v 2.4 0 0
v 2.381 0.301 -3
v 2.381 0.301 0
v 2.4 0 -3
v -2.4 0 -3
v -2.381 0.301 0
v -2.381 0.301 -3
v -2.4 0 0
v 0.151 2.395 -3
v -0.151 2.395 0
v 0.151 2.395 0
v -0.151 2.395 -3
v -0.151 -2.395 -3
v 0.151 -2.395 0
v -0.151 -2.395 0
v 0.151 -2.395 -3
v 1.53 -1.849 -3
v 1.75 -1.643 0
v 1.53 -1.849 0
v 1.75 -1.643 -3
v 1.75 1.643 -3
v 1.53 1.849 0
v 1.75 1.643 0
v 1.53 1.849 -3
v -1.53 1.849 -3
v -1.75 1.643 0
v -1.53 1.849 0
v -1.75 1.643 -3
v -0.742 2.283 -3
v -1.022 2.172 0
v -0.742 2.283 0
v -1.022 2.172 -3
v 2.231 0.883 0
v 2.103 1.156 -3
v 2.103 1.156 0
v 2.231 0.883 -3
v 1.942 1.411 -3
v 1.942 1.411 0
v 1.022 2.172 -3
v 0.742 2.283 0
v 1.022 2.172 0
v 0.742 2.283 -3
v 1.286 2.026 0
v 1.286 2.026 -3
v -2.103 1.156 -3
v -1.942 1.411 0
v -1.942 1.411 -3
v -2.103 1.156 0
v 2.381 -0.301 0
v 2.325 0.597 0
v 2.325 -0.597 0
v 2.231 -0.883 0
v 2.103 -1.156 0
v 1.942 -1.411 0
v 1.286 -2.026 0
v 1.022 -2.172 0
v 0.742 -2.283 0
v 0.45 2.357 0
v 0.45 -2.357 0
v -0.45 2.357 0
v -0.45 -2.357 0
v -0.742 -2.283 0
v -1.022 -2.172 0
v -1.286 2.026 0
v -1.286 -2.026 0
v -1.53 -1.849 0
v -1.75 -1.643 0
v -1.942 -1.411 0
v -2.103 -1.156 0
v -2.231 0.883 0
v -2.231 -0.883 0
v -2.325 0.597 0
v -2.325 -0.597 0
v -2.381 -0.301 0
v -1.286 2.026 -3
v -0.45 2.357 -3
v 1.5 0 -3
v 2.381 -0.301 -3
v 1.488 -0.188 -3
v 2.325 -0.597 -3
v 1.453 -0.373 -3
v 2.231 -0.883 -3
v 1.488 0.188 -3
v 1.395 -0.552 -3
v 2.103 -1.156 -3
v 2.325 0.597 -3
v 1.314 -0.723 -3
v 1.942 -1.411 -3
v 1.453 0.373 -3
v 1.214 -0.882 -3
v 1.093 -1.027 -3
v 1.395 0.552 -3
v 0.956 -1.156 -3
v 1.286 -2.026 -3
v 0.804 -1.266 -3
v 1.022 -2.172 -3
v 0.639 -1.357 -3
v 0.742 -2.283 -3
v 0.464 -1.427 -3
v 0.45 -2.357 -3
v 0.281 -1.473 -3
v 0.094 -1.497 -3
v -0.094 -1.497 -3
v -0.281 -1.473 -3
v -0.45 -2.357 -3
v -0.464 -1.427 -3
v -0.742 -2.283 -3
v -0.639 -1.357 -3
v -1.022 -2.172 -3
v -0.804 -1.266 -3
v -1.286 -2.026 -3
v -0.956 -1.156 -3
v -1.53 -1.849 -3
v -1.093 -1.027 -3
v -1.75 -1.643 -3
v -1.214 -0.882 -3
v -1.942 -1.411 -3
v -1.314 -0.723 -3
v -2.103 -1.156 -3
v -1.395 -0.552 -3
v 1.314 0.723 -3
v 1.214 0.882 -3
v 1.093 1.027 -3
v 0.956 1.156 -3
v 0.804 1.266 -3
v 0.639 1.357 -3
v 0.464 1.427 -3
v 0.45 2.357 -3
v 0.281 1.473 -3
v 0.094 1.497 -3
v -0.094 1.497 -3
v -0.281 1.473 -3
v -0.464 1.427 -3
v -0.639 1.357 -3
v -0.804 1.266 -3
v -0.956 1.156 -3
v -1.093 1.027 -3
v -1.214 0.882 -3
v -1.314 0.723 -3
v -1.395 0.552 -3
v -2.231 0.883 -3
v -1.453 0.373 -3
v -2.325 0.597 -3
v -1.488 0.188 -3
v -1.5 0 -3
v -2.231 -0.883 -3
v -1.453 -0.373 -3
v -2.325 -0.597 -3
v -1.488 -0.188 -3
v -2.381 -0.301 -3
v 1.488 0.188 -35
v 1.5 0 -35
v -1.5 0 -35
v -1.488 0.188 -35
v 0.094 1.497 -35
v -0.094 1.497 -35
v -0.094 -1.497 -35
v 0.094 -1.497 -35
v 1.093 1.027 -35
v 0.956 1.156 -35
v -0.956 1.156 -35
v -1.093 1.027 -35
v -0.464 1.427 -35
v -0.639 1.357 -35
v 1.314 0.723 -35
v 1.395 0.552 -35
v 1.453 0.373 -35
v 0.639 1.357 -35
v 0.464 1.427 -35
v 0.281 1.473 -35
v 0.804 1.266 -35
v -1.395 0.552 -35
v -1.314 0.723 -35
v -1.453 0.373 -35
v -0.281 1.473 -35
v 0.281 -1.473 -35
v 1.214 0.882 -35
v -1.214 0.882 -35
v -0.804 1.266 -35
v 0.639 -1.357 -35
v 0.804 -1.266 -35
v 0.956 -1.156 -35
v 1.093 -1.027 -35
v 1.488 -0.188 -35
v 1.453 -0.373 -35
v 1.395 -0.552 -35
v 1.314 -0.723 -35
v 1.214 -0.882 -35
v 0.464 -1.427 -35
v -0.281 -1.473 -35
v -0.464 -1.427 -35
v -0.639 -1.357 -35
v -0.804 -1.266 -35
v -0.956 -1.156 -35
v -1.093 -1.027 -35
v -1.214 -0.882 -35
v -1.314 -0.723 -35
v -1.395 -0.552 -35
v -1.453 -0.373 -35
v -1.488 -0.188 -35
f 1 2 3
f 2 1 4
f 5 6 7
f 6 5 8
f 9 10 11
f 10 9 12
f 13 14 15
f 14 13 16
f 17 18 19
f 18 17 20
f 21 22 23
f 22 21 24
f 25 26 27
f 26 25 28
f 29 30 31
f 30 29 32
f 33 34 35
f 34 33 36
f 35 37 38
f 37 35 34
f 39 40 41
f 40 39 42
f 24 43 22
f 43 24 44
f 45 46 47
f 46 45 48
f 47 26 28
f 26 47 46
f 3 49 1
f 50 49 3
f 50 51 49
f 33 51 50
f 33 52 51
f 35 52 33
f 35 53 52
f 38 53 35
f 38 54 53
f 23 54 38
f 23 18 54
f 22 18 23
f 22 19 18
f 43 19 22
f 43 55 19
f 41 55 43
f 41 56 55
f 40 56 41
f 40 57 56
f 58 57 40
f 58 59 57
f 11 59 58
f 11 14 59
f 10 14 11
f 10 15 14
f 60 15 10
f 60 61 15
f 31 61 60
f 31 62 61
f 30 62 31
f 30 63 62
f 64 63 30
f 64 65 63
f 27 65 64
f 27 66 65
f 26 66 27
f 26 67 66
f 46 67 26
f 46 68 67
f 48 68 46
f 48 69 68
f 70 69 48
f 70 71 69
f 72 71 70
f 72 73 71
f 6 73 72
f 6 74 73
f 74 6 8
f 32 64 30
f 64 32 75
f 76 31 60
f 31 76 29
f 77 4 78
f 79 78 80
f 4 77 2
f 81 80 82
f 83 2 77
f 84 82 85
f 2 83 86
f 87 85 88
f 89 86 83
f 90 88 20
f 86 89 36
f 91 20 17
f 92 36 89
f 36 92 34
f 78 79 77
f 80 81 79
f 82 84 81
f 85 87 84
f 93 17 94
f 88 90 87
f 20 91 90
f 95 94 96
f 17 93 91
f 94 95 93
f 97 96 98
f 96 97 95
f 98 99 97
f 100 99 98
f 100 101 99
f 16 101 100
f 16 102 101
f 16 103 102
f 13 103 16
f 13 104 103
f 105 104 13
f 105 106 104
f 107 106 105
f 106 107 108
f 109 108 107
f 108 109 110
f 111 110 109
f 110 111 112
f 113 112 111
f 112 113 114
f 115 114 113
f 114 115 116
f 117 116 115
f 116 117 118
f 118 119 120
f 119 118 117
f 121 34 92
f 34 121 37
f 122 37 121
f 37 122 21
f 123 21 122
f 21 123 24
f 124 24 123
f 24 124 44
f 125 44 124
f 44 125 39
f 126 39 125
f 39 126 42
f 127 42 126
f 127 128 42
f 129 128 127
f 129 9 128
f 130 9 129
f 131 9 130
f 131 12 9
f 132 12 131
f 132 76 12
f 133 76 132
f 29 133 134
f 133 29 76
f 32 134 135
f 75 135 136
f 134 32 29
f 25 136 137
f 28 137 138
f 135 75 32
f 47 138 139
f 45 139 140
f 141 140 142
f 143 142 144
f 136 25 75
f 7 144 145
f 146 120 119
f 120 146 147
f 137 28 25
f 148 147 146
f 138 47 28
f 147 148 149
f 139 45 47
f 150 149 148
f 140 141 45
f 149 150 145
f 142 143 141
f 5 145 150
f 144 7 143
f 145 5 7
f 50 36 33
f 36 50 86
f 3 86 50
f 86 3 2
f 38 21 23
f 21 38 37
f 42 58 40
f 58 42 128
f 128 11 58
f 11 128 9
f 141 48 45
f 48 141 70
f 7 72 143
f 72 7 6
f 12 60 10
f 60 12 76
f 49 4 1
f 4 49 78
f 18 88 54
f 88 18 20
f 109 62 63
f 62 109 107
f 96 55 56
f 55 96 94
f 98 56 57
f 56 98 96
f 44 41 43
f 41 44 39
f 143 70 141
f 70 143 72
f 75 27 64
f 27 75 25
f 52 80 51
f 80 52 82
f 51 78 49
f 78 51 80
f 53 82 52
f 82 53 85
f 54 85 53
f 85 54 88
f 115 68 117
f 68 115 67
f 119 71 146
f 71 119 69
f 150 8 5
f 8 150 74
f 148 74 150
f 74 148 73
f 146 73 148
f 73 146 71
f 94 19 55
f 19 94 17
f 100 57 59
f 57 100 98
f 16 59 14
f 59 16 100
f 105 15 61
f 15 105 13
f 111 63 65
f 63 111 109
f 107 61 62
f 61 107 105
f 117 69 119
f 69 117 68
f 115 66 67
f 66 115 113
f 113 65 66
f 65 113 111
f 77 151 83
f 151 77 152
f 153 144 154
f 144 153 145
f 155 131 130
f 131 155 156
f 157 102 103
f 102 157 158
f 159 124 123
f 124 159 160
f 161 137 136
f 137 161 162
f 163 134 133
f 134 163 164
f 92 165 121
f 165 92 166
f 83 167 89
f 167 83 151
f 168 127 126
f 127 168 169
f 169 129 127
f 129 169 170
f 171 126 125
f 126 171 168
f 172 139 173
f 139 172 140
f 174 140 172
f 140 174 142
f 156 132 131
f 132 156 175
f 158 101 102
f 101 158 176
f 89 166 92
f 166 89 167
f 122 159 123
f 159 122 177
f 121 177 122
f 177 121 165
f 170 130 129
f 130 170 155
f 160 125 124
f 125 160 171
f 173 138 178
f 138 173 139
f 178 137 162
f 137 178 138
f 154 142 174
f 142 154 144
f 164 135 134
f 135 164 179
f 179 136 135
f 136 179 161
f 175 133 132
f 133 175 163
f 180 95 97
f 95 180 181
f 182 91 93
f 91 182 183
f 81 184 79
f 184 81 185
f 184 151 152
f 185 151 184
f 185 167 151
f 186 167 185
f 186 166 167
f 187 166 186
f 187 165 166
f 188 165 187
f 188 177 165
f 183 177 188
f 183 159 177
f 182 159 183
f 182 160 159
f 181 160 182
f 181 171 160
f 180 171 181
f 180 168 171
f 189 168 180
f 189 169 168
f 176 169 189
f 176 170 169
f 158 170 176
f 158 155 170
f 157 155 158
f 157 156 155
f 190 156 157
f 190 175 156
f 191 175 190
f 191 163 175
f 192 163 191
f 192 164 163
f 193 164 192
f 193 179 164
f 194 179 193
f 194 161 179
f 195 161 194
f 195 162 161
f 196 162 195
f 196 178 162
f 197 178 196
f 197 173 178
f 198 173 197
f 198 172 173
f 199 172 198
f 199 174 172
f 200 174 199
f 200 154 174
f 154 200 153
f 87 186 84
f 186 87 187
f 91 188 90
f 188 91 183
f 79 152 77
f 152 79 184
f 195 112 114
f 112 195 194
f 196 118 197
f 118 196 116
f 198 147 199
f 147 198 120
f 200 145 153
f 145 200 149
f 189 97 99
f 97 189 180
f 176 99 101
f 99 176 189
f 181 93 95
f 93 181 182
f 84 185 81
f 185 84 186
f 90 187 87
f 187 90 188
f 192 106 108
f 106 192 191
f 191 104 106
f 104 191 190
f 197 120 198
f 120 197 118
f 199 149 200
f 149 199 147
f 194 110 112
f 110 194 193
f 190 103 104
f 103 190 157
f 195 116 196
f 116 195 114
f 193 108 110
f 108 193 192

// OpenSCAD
$fn = 50;


difference() {
	union() {
		translate(v = [0, 0, -3]) {
			rotate(a = [0, 0, 0]) {
				cylinder(h = 3, r1 = 2.4000000000, r2 = 2.4000000000);
			}
		}
		translate(v = [0, 0, -35]) {
			rotate(a = [0, 0, 0]) {
				cylinder(h = 35, r = 1.5000000000);
			}
		}
	}
	union();
}
